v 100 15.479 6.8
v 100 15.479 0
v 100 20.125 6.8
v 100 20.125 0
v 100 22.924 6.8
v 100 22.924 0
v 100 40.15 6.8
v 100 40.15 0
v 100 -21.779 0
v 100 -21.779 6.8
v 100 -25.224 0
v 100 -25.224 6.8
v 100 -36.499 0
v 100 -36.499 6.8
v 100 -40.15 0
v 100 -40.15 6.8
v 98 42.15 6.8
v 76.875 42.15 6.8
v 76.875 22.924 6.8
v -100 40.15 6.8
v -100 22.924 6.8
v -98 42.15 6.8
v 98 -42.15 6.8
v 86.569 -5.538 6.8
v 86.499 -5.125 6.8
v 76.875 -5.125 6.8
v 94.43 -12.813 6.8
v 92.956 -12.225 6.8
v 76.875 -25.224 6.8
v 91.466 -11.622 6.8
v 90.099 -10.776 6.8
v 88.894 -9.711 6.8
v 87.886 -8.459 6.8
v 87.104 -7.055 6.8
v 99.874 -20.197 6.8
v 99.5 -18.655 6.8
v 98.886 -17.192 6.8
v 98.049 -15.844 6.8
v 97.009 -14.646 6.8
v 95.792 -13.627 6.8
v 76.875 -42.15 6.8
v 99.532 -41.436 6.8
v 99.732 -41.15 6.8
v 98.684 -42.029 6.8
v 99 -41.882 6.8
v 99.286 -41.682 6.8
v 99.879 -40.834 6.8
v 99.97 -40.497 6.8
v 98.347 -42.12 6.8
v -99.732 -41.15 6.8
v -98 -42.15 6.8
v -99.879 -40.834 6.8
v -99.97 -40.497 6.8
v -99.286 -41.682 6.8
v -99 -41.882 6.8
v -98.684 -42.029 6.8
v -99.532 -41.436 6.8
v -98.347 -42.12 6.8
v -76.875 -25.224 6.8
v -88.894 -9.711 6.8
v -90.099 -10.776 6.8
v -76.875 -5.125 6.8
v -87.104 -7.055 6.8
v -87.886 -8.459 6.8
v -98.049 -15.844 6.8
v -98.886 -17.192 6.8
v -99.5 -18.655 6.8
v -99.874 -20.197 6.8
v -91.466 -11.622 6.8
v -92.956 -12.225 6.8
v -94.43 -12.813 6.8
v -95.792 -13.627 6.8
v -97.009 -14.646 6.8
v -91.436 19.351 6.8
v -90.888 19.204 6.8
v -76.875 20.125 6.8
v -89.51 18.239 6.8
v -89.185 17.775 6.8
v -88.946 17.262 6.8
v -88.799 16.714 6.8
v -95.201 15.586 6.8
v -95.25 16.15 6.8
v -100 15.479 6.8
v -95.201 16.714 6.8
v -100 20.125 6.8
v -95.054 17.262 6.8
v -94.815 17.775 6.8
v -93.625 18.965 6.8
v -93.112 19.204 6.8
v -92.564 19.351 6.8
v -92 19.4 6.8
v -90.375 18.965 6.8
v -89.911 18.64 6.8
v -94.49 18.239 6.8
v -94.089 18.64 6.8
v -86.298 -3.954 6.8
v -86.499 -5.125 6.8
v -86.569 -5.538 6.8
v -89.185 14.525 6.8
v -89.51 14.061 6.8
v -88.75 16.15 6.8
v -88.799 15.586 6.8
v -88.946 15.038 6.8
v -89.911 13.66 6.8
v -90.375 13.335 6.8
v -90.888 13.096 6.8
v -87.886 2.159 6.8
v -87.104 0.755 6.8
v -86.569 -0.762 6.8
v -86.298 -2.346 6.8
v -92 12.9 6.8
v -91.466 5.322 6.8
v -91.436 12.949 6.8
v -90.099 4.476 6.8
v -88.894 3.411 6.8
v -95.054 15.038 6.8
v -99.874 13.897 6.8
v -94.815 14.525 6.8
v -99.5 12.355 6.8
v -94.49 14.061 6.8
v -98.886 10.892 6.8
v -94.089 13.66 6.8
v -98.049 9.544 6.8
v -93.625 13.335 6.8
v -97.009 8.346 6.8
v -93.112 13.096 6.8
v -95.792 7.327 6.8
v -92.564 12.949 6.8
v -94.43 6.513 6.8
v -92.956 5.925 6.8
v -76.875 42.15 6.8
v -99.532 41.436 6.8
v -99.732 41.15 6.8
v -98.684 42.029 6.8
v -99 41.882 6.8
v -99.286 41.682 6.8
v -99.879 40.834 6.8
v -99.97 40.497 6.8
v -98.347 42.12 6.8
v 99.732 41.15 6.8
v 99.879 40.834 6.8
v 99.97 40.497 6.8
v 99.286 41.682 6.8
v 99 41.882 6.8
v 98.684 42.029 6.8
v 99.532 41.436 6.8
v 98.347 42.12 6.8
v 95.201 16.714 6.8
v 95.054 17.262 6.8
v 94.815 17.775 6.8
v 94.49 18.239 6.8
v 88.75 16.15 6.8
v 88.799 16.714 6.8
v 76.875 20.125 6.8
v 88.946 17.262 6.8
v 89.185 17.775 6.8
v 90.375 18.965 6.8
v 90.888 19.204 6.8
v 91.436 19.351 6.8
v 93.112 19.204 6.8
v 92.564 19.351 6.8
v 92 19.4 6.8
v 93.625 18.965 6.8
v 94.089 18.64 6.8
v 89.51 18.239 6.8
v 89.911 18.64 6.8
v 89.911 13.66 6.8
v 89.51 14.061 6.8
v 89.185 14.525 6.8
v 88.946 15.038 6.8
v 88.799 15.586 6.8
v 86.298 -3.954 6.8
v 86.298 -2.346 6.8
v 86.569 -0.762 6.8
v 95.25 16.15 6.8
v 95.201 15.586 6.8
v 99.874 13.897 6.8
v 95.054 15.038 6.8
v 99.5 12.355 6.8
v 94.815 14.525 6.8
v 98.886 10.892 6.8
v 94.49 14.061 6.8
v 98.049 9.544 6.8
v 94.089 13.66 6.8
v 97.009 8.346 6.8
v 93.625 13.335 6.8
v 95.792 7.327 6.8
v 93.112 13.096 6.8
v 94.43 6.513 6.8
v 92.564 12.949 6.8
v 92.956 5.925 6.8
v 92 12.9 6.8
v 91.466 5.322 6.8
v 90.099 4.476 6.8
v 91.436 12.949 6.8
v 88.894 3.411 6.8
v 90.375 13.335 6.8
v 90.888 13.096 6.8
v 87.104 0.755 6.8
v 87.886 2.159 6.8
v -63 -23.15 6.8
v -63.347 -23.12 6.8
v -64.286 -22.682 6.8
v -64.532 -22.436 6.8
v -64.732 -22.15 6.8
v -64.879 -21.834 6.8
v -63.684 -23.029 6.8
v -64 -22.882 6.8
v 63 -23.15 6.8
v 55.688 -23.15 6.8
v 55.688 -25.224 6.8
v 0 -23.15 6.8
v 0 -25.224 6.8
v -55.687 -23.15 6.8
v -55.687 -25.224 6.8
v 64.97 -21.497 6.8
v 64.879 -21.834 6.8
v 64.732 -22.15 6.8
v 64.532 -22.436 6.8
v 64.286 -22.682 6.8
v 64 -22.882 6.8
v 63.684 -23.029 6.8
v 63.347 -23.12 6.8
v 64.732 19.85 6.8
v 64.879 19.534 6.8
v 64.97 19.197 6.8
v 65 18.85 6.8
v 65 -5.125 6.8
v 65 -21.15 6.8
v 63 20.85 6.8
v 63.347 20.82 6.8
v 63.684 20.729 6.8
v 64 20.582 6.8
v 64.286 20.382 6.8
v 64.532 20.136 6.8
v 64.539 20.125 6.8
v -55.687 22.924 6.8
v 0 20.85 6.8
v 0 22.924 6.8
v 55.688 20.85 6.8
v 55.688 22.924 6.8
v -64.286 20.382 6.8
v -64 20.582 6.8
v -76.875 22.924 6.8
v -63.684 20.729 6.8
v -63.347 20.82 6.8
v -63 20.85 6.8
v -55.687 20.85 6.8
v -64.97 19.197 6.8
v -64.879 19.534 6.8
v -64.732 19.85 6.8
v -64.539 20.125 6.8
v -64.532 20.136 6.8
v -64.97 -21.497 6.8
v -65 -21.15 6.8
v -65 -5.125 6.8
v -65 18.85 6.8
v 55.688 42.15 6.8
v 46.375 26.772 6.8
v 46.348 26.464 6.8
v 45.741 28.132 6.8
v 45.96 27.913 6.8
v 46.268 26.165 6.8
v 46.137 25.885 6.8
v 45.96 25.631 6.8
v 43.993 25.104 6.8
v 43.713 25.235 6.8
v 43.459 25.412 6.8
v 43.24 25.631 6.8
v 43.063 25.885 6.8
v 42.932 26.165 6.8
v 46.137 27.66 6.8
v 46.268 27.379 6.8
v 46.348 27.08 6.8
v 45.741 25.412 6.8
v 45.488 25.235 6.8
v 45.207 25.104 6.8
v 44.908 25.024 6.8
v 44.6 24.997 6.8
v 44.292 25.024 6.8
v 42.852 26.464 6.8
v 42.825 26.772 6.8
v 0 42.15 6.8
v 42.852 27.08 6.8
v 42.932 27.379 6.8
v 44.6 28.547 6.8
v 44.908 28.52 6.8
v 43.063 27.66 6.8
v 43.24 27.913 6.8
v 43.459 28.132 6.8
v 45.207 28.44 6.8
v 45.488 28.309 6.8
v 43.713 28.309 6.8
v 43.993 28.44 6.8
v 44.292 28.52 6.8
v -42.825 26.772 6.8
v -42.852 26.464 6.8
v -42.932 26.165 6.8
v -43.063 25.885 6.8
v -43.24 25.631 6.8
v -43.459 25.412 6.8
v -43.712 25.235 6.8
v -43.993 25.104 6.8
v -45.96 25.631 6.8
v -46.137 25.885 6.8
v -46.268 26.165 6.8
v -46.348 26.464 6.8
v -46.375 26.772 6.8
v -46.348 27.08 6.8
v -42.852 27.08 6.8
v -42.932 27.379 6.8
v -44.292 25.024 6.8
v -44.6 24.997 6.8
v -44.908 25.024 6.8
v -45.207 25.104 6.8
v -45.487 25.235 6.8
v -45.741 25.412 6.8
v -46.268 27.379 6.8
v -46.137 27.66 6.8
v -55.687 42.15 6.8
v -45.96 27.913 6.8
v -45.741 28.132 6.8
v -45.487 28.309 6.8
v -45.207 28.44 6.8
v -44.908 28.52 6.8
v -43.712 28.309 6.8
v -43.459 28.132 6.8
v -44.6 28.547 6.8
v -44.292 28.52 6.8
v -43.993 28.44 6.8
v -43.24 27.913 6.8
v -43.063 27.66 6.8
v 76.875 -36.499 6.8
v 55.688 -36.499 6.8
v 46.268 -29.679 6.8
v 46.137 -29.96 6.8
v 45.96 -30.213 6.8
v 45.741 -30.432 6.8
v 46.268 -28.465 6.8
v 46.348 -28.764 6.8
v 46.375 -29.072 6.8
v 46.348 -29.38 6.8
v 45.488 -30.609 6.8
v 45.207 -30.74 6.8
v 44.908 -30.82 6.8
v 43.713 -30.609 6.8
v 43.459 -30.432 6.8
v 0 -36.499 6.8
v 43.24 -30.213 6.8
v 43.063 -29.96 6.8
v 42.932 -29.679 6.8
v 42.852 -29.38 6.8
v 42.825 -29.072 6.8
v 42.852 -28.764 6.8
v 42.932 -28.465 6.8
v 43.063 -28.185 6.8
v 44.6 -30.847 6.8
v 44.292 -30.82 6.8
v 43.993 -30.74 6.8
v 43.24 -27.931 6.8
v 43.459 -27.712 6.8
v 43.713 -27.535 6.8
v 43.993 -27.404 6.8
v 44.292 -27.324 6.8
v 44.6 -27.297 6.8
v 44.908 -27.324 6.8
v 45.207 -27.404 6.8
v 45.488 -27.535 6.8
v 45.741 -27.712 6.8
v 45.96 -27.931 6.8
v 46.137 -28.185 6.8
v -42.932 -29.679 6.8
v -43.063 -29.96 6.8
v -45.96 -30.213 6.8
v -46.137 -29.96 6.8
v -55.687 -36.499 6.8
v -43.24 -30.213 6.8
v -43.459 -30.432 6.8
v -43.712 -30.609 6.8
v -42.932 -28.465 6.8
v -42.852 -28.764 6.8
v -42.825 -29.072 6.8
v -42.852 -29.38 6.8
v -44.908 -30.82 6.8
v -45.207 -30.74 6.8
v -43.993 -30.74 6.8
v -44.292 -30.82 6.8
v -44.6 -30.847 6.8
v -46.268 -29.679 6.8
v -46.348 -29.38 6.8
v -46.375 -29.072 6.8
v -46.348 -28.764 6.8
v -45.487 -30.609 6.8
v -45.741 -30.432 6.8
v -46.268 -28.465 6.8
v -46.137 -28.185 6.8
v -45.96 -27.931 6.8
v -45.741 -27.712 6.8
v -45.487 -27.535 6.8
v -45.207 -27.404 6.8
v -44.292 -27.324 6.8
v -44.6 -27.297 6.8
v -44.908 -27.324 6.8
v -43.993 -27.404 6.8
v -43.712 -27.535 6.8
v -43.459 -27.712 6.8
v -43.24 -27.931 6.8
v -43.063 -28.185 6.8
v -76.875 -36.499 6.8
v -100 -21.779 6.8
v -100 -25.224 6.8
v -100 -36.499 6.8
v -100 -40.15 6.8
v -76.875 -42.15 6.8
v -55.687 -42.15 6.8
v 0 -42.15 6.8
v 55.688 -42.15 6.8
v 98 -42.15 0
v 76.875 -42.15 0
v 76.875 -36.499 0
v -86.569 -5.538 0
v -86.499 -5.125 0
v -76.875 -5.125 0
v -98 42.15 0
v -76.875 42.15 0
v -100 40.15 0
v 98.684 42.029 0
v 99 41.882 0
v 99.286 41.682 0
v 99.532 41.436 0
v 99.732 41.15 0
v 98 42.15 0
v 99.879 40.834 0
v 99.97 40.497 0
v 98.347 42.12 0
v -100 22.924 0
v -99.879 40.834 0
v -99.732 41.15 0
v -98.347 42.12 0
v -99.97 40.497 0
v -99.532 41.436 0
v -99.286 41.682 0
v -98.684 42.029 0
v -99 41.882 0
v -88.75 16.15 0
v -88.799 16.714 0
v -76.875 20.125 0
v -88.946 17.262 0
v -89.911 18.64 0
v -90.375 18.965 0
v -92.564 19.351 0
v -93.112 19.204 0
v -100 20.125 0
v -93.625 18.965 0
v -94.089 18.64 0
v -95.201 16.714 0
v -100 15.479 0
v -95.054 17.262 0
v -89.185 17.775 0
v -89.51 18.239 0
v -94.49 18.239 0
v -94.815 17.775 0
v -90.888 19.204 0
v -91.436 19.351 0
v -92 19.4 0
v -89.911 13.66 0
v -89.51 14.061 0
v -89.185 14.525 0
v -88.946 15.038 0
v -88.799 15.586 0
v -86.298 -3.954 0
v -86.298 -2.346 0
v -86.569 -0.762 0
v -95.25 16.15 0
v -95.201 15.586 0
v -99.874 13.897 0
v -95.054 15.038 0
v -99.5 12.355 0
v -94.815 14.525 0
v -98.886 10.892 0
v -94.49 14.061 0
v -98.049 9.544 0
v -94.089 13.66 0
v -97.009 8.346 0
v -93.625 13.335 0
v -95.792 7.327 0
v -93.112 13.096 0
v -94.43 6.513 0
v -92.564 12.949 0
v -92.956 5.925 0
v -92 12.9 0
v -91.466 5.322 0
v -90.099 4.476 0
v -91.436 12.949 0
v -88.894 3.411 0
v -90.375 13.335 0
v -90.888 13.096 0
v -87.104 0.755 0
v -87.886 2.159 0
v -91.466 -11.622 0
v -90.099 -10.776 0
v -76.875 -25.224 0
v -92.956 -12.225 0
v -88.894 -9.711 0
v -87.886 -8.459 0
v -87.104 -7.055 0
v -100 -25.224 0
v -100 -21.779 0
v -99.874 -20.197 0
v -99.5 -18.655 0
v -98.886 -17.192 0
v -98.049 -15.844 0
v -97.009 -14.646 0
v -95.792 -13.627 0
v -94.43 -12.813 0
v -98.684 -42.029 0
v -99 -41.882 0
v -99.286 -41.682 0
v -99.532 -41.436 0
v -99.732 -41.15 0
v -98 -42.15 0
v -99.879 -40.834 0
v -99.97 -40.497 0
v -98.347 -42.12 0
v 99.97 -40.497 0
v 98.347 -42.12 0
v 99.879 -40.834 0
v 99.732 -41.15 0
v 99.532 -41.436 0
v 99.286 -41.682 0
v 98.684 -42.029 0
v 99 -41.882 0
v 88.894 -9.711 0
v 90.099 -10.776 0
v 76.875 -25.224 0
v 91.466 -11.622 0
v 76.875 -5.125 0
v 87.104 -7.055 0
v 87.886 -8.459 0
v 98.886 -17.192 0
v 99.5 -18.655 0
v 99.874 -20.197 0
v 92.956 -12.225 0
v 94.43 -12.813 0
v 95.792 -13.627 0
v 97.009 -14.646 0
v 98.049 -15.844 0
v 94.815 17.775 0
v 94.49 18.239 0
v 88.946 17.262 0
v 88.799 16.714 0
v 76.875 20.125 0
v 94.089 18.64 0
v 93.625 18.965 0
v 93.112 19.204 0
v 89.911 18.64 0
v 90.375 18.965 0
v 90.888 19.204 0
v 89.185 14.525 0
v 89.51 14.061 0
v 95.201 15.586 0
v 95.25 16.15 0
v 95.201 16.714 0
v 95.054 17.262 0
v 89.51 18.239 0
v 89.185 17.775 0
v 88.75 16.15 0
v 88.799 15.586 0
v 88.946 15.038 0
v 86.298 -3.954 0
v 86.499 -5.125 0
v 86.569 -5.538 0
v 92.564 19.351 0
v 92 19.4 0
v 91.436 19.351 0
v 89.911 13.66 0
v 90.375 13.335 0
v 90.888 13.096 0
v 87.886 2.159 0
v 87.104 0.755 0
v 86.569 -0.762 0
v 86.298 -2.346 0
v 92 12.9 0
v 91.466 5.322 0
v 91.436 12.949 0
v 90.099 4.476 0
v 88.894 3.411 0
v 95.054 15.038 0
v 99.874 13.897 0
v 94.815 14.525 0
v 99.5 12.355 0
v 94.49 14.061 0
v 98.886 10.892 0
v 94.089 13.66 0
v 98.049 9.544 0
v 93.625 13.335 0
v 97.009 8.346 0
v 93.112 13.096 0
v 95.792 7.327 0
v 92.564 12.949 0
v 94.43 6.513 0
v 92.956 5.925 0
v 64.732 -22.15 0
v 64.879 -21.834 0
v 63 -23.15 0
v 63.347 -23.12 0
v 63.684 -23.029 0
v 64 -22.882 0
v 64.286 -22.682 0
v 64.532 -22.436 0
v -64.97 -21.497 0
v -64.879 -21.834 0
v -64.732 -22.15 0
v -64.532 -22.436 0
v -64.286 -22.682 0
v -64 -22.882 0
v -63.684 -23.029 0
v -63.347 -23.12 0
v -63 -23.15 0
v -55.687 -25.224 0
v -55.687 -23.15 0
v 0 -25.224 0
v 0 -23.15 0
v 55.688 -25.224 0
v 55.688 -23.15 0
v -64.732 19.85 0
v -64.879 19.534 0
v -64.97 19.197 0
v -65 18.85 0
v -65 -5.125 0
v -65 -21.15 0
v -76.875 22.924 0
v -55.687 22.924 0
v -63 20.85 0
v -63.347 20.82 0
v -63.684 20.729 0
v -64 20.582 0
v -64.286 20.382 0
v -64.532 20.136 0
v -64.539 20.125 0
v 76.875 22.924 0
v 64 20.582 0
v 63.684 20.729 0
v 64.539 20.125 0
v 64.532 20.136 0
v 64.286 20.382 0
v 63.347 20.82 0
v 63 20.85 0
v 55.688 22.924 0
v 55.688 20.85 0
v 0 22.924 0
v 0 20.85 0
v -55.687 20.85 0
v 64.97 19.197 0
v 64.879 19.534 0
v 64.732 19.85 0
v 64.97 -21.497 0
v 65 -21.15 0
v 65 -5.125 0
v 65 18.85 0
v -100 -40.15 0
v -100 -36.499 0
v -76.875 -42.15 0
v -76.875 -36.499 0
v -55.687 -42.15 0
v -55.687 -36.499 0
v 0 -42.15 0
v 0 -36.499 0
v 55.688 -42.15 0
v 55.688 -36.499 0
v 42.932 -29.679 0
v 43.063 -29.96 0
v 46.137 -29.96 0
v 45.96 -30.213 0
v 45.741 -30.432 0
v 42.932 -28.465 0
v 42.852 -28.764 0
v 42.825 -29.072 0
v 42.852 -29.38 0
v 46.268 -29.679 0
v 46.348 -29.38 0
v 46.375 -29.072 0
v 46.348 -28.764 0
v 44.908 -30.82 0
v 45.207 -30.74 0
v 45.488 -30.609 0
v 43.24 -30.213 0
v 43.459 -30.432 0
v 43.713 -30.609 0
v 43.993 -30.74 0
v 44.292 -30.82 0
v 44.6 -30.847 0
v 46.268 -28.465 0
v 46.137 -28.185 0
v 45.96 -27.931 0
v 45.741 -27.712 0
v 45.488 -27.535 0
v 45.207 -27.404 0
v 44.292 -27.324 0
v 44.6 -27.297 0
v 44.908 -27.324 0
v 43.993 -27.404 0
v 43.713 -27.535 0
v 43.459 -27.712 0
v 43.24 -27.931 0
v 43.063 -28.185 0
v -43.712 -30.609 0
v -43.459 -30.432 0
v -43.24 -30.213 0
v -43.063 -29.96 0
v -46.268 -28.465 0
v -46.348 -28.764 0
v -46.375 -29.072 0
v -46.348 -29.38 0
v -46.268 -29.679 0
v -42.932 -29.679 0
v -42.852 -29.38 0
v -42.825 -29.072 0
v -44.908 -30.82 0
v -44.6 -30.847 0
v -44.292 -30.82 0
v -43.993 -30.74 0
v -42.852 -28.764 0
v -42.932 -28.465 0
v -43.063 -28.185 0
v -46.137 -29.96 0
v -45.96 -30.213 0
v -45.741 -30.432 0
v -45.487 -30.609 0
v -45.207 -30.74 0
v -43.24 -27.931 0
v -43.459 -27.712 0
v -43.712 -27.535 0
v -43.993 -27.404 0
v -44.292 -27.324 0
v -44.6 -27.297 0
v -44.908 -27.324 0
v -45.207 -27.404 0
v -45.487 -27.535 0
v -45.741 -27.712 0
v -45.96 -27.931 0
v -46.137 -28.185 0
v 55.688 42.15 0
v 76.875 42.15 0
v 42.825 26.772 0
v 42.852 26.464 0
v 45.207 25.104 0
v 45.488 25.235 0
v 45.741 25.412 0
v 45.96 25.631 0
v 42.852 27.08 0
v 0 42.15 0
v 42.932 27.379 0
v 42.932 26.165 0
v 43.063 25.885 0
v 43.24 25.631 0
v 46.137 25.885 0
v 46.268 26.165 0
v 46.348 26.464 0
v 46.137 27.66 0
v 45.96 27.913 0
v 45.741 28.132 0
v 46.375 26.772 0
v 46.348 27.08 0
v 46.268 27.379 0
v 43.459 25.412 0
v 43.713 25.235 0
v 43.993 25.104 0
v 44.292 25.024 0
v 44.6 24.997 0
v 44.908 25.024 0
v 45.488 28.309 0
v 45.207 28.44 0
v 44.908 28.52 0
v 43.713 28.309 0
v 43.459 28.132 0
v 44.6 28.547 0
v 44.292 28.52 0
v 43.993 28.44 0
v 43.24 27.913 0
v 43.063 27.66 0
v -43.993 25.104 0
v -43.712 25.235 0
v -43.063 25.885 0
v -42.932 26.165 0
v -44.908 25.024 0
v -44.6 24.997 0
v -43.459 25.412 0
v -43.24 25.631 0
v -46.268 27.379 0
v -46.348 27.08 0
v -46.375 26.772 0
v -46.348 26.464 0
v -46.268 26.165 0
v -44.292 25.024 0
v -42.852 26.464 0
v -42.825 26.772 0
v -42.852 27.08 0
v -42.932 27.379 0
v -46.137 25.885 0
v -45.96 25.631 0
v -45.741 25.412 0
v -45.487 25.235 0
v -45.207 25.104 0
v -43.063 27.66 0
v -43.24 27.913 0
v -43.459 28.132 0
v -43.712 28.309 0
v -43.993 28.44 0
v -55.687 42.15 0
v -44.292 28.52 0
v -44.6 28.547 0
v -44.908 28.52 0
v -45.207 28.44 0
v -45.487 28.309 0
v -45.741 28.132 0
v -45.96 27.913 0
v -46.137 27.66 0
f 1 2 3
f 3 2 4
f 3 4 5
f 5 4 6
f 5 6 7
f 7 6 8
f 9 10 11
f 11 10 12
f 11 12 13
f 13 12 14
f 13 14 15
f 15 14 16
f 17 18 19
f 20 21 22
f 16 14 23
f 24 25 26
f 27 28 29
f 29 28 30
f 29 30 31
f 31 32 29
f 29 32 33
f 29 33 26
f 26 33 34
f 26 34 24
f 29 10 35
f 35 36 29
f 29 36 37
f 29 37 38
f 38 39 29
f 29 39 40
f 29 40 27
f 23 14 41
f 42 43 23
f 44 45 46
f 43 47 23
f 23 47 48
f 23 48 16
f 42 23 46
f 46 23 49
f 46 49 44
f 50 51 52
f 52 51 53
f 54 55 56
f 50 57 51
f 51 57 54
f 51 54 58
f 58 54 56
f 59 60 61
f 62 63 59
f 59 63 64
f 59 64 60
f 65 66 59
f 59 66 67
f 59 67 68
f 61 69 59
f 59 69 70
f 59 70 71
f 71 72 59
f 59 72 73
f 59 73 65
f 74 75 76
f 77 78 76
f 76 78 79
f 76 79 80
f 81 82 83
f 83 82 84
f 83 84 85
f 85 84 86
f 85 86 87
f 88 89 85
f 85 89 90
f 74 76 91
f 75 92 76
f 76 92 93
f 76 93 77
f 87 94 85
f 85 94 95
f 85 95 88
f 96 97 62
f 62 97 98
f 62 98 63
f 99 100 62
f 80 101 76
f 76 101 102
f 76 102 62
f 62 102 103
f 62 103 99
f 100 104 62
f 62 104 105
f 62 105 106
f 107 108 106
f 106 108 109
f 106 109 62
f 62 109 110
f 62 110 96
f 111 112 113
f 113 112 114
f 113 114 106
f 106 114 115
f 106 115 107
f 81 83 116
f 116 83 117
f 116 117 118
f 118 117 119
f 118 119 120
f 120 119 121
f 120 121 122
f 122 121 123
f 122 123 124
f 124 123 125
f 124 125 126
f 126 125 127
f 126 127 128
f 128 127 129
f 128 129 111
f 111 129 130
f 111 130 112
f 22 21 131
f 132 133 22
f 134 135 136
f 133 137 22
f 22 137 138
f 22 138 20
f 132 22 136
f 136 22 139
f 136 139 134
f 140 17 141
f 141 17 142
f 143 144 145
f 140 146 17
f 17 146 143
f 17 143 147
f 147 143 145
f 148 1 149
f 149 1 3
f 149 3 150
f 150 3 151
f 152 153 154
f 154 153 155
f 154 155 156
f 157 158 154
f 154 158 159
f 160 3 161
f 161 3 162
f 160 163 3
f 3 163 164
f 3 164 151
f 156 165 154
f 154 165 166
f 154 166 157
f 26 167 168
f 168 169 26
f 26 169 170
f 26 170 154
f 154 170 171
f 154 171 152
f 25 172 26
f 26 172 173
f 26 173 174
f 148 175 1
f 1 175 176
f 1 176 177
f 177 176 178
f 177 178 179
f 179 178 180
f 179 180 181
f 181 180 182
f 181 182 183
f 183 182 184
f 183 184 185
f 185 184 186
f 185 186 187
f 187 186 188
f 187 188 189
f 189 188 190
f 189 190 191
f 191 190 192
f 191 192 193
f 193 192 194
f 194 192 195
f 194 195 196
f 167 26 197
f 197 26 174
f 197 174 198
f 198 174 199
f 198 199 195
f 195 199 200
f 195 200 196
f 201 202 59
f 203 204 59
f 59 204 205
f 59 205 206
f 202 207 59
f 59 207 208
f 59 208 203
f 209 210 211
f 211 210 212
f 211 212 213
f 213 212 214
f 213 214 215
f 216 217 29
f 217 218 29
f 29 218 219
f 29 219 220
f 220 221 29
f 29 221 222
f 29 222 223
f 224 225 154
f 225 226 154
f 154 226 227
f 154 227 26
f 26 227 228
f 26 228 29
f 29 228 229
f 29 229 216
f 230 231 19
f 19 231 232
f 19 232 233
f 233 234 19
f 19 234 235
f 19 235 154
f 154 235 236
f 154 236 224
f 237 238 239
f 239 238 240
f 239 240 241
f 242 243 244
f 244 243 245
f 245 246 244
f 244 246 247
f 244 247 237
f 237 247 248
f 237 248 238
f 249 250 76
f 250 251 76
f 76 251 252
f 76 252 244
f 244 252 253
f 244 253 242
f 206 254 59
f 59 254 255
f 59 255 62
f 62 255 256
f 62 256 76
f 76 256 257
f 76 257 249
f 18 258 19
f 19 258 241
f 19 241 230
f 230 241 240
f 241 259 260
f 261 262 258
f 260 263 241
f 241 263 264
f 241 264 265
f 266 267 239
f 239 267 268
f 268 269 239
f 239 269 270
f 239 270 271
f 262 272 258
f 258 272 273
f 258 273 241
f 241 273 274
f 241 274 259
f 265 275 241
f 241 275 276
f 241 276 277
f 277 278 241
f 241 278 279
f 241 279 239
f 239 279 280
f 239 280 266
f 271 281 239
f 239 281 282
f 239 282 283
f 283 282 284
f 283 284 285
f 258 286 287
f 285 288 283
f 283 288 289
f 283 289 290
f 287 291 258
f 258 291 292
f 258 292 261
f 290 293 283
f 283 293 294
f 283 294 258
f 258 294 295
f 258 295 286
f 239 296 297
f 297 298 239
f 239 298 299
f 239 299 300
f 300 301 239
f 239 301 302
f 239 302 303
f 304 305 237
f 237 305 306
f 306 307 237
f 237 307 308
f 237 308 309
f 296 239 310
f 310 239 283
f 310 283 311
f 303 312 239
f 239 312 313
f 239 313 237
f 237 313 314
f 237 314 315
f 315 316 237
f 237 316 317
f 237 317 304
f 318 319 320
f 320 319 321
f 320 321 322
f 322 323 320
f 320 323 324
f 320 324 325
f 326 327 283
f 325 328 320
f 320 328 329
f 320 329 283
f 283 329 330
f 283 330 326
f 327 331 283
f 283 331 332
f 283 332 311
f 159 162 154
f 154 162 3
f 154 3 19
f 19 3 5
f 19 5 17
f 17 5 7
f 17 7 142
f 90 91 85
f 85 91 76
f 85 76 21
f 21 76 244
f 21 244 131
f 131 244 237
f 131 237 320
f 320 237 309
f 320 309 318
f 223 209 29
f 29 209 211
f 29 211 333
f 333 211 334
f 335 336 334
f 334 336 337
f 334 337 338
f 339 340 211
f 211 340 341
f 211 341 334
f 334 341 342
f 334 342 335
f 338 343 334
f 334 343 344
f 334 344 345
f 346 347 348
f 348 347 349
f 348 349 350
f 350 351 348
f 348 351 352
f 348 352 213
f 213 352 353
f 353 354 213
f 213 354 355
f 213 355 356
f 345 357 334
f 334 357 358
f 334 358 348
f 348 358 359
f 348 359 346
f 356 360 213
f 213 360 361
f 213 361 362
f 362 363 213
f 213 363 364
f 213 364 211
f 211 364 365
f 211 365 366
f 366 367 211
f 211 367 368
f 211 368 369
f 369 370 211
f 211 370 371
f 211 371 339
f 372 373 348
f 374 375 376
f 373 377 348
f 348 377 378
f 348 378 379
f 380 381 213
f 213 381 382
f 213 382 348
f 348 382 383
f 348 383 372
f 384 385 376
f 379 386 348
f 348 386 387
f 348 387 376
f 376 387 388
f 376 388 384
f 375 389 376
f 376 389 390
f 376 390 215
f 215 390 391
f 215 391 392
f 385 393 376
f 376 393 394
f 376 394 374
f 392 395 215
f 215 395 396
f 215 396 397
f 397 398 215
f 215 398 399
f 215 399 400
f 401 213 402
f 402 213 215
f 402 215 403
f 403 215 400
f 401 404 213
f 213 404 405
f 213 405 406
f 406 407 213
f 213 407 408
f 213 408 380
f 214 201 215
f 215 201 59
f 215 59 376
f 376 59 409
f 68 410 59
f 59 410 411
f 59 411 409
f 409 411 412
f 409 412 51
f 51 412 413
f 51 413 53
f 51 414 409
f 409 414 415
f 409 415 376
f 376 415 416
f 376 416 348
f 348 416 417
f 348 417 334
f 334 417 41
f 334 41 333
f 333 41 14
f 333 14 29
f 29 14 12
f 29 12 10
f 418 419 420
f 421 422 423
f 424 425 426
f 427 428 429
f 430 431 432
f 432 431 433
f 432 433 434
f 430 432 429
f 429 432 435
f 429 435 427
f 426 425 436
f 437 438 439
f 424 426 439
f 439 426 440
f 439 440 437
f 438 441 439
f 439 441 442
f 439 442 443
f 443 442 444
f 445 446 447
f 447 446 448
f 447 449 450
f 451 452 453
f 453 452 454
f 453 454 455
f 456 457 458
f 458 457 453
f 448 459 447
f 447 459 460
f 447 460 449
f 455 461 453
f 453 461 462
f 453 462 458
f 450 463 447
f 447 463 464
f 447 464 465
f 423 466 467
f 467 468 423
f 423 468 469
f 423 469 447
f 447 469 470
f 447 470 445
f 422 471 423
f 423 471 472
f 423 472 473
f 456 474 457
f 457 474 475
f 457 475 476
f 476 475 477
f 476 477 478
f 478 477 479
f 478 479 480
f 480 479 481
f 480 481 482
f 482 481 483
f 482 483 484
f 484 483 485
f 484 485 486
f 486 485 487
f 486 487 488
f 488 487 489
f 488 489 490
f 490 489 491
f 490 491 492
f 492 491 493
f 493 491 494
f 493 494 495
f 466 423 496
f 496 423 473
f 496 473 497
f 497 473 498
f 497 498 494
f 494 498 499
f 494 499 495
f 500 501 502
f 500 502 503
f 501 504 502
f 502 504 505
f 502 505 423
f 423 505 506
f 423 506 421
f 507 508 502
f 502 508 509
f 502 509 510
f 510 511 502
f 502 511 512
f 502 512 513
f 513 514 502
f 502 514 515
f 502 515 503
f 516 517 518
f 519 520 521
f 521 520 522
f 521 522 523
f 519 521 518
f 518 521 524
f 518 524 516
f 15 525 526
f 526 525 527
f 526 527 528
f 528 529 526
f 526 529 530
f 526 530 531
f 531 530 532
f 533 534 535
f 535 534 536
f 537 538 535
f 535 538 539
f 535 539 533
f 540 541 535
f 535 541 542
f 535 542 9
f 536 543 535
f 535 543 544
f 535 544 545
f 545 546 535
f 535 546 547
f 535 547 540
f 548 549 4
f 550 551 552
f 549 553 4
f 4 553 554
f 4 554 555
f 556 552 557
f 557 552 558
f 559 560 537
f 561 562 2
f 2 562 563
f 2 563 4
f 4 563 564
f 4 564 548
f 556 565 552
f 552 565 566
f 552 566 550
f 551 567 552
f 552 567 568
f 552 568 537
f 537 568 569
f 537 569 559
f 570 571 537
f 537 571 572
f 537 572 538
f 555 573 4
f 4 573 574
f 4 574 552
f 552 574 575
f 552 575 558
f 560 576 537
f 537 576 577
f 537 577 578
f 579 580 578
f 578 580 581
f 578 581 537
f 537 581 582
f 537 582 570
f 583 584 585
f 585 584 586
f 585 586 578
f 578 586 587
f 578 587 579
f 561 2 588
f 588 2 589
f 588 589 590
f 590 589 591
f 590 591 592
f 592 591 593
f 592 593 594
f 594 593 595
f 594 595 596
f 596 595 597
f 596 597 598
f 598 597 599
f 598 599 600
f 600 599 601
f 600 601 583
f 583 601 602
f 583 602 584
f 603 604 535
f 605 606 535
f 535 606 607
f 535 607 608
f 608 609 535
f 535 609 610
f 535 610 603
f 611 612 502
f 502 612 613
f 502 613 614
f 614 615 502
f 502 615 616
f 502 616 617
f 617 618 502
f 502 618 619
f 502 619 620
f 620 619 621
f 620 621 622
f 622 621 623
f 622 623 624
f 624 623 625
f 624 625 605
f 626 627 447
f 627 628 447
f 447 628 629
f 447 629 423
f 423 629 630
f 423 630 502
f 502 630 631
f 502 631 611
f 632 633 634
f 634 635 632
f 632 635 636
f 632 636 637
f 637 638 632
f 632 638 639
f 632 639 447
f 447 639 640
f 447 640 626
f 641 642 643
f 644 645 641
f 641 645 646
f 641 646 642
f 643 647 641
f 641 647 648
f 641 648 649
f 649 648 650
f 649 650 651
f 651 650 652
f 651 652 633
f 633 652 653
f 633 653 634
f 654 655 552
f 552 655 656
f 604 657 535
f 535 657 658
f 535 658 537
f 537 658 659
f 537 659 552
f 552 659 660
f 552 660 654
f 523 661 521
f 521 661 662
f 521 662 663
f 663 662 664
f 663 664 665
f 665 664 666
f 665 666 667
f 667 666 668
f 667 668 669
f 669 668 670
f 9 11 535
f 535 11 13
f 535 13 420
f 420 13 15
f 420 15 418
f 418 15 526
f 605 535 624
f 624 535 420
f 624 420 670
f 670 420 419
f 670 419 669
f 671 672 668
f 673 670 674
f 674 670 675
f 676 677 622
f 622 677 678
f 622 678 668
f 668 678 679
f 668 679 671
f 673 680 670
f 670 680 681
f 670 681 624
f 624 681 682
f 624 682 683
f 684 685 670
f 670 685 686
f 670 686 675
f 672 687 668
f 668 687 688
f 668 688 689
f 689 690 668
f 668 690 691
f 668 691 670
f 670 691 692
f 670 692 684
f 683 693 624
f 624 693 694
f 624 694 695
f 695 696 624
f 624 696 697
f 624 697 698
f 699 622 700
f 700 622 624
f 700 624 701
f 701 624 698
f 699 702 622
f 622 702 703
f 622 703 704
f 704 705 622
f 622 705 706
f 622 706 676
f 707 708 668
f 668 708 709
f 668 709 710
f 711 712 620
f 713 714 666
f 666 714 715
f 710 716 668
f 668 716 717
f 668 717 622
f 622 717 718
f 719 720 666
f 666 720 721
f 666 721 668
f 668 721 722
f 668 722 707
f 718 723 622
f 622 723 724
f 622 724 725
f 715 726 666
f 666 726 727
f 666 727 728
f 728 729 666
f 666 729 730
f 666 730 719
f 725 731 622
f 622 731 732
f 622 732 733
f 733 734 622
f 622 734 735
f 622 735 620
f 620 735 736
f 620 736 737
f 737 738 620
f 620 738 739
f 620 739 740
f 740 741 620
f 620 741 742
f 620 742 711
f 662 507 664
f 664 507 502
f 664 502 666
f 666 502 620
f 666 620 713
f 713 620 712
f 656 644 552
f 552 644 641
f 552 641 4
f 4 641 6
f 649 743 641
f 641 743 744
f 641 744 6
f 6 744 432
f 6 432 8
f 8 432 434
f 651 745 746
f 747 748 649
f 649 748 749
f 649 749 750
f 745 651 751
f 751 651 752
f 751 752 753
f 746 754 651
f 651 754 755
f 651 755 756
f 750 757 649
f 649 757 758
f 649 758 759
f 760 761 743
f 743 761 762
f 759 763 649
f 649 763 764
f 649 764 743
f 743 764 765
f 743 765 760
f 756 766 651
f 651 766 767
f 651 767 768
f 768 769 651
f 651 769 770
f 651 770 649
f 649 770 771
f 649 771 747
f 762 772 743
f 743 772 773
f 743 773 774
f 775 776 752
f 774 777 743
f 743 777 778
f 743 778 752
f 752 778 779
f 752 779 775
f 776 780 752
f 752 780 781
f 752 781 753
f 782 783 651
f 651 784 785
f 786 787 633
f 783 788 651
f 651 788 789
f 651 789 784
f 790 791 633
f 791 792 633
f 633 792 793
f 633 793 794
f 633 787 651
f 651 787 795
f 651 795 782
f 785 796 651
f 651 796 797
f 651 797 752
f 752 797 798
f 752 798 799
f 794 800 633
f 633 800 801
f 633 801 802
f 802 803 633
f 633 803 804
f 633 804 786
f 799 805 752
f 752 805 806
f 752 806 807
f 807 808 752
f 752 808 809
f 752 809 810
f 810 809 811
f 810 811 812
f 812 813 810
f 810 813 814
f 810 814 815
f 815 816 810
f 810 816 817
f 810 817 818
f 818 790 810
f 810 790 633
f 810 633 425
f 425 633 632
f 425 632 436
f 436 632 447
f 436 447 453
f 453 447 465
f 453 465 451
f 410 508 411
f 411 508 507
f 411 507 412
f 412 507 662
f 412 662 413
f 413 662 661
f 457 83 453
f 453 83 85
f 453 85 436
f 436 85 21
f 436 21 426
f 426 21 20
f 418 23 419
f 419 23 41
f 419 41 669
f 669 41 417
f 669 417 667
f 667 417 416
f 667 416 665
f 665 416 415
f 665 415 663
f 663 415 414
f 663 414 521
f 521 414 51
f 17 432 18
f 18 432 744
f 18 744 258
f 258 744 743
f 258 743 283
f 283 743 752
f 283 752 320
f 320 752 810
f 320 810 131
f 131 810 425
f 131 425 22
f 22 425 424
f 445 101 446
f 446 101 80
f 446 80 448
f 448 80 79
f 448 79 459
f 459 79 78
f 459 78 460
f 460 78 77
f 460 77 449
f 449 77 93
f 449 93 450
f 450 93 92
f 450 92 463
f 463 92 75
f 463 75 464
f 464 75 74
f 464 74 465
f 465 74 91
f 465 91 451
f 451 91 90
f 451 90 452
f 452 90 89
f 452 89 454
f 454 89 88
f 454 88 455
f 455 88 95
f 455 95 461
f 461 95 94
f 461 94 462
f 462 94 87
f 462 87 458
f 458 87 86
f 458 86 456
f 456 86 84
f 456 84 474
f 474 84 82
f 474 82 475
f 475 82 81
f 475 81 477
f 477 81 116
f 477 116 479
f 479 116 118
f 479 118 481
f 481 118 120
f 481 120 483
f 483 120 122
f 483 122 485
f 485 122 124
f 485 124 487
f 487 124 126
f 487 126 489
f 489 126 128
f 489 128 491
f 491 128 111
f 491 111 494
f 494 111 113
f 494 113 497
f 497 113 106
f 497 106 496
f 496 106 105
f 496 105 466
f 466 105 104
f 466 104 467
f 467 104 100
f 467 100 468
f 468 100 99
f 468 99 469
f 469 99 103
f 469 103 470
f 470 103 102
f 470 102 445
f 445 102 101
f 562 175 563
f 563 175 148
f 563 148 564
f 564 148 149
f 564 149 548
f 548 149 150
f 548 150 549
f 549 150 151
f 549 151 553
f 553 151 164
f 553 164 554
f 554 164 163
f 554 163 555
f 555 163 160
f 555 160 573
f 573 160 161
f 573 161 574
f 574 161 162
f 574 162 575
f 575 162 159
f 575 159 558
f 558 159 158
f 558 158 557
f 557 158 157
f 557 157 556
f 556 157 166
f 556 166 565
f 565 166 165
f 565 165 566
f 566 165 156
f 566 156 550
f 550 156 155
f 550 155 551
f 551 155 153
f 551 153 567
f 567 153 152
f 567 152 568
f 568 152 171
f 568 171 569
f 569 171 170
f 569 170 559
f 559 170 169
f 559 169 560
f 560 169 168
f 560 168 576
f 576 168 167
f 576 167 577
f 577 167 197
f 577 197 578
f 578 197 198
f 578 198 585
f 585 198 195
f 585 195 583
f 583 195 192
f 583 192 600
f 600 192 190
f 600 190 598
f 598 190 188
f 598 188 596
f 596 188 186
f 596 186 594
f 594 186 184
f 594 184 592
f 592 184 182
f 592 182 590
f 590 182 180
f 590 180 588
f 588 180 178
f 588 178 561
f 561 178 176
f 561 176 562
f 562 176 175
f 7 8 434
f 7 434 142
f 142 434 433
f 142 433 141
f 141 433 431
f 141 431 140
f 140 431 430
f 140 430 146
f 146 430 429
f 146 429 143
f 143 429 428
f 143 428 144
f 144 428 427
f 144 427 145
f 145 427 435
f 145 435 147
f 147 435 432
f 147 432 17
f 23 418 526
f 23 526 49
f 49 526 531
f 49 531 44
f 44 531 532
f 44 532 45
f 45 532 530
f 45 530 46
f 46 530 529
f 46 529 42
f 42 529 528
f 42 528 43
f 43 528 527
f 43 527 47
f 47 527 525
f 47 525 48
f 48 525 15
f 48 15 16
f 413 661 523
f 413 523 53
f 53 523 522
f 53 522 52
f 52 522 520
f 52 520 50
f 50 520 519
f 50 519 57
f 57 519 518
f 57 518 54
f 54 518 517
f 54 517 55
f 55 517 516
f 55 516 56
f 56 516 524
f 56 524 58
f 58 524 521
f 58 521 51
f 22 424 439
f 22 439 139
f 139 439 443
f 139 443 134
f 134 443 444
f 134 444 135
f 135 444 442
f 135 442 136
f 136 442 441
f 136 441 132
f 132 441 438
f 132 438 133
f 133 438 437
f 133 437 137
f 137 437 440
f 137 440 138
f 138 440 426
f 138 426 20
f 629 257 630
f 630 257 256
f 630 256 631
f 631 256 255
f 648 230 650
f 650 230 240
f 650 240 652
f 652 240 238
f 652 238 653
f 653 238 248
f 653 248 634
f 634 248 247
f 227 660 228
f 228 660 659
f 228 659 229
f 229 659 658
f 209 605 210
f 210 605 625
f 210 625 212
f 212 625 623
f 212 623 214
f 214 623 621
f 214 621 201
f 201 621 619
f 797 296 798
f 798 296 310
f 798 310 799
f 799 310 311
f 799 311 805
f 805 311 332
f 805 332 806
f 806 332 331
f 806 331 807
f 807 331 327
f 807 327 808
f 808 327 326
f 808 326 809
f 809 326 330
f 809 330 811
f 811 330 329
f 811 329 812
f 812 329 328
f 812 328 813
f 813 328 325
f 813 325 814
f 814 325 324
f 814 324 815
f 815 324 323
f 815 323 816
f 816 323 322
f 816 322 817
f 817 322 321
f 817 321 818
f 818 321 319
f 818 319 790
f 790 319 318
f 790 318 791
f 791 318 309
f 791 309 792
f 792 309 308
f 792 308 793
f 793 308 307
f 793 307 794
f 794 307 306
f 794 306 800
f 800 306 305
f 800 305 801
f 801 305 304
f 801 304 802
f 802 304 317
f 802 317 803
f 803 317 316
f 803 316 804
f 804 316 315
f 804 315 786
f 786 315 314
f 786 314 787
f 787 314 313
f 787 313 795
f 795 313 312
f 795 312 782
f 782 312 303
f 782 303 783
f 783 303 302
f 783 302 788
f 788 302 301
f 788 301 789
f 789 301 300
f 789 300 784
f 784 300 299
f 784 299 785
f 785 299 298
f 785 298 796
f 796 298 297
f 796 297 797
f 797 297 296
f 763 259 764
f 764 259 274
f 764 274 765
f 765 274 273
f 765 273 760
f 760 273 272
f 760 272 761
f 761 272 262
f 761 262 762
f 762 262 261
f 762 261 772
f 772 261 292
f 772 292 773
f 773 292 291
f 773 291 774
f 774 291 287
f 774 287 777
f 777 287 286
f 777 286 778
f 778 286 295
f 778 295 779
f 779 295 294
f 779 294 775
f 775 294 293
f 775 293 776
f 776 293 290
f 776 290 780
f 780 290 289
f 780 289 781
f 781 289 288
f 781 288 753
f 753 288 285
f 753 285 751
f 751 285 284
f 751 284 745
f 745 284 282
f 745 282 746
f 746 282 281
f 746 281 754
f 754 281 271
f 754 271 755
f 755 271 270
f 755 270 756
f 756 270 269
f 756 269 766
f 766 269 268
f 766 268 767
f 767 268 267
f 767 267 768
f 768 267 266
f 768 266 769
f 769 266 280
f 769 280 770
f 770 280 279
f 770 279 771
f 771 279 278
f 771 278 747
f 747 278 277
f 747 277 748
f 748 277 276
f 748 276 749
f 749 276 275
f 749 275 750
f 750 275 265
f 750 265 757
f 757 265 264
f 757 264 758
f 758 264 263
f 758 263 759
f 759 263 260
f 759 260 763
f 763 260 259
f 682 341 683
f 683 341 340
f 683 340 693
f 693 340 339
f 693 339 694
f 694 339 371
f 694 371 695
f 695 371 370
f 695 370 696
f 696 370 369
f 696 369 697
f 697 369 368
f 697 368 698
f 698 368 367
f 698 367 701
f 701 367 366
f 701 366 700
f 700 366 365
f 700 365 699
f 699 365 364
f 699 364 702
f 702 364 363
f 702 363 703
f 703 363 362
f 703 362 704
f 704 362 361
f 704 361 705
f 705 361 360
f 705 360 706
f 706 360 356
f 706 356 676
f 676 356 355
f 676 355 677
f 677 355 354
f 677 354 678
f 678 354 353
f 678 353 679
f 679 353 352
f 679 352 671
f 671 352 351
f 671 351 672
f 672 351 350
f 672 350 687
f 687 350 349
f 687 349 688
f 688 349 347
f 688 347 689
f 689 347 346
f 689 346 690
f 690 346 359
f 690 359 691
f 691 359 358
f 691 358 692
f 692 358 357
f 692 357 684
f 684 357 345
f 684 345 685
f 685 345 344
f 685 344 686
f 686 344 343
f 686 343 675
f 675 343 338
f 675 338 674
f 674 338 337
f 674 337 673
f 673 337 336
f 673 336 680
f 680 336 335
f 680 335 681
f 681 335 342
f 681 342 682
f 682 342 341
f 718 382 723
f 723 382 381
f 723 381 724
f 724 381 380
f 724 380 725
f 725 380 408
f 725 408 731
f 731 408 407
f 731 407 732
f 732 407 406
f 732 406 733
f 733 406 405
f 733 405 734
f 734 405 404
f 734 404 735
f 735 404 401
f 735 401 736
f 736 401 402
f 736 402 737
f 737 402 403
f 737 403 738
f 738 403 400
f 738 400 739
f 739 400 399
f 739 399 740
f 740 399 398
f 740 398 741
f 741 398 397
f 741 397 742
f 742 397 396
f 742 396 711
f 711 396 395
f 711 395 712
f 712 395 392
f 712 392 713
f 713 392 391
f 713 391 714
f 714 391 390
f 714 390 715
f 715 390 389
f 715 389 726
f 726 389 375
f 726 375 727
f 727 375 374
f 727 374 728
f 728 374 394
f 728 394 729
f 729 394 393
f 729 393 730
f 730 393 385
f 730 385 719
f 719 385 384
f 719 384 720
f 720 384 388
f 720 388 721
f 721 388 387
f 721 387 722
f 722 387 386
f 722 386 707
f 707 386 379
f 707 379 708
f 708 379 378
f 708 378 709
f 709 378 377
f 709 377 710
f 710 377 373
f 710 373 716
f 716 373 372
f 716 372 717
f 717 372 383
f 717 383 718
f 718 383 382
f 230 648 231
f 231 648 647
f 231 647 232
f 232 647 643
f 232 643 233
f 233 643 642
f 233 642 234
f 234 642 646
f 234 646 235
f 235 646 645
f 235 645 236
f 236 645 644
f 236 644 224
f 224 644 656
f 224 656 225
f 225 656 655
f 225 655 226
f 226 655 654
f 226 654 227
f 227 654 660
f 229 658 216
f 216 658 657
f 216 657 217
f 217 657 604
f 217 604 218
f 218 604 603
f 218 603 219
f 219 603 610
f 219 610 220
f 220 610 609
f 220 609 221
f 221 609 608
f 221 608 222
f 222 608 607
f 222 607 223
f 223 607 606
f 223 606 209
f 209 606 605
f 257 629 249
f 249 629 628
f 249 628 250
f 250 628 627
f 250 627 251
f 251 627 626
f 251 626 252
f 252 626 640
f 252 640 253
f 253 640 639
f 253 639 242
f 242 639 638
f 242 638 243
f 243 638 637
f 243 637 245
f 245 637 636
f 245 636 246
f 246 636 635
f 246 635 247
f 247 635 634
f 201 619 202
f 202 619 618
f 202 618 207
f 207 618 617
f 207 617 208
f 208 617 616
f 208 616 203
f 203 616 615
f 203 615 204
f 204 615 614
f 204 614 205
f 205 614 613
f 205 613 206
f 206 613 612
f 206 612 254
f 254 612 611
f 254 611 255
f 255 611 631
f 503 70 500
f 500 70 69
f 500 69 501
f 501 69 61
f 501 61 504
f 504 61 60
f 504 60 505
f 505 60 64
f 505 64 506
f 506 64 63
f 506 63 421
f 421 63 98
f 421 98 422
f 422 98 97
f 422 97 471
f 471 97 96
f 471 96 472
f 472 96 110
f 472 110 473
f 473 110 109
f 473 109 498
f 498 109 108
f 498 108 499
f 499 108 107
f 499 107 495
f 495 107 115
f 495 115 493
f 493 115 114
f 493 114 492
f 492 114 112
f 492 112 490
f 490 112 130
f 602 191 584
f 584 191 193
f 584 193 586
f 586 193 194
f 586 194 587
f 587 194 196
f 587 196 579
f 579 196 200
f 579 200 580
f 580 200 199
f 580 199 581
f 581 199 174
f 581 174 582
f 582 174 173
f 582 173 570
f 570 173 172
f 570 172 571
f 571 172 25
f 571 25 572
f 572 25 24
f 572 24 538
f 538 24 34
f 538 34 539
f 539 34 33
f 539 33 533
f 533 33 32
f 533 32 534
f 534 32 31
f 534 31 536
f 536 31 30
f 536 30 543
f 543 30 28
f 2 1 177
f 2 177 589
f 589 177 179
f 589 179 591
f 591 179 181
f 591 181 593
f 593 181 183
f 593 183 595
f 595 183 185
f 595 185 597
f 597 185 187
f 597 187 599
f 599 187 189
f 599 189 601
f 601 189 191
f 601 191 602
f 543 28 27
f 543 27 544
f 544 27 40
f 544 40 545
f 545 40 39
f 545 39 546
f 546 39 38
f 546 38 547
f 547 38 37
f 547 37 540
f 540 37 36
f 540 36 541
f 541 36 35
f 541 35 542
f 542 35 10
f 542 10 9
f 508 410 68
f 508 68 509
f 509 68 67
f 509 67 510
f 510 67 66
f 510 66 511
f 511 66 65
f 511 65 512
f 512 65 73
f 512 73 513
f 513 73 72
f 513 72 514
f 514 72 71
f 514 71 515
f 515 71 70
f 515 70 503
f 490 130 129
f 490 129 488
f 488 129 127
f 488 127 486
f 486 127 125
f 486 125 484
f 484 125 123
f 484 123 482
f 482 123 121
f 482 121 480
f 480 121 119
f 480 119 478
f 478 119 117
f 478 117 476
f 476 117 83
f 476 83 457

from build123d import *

# Parameters (mm, degrees)
SKETCH1_W           = 200
SKETCH1_H           = 84.3
BOSS_EXTRUDE1_DEPTH = 6.8
SKETCH2_R           = 3.25
CUT_EXTRUDE1_DEPTH  = 6.8
FILLET1_R           = 2
SKETCH3_R           = 1.775
SKETCH3_W           = 130
SKETCH3_H           = 44
CUT_EXTRUDE2_DEPTH  = 109.732987175
FILLET2_R           = 2
CUT_EXTRUDE3_DEPTH  = 10
FILLET3_R           = 10


with BuildPart() as part:
    # Sketch1 → Boss-Extrude1 (new body)
    with BuildSketch(Plane.XY):
        Rectangle(SKETCH1_W, SKETCH1_H)
    extrude(amount=BOSS_EXTRUDE1_DEPTH)

    # Sketch2 → Cut-Extrude1 (cut)
    with BuildSketch(Plane.XY.offset(6.8)):
        with Locations((-92, 16.15)):
            Circle(SKETCH2_R)
        with Locations((92, 16.15)):
            Circle(SKETCH2_R)
    extrude(amount=-CUT_EXTRUDE1_DEPTH, mode=Mode.SUBTRACT)

    # Fillet1
    fillet1_edges = [part.edges().sort_by_distance(p)[0] for p in [
        (-100, 42.15, 3.4),
        (100, 42.15, 3.4),
        (100, -42.15, 3.4),
        (-100, -42.15, 3.4),
    ]]
    fillet(fillet1_edges, radius=FILLET1_R)

    # Sketch3 → Cut-Extrude2 (cut, through all)
    with BuildSketch(Plane.XY.offset(6.8)):
        with Locations((-44.6, 26.7722)):
            Circle(SKETCH3_R)
        with Locations((44.6, 26.7722)):
            Circle(SKETCH3_R)
        with Locations((44.6, -29.0722)):
            Circle(SKETCH3_R)
        with Locations((-44.6, -29.0722)):
            Circle(SKETCH3_R)
        with Locations((0, -1.15)):
            Rectangle(SKETCH3_W, SKETCH3_H)
    extrude(amount=-CUT_EXTRUDE2_DEPTH, mode=Mode.SUBTRACT)

    # Fillet2
    fillet2_edges = [part.edges().sort_by_distance(p)[0] for p in [
        (-65, -23.15, 3.4),
        (-65, 20.85, 3.4),
        (65, 20.85, 3.4),
        (65, -23.15, 3.4),
    ]]
    fillet(fillet2_edges, radius=FILLET2_R)

    # Sketch4 → Cut-Extrude3 (cut)
    with BuildSketch(Plane.XY.offset(6.8)):
        with BuildLine():
            Line((-95.764164993, 6.349975114), (-108.891829776, 6.349975114))
            Line((-108.891829776, 6.349975114), (-108.891829776, -12.650024886))
            Line((-108.891829776, -12.650024886), (-95.764164993, -12.650024886))
            ThreePointArc((-95.764164993, -12.650024886), (-86.264164993, -3.150024886), (-95.764164993, 6.349975114))
        make_face()
    cut_extrude3 = extrude(amount=-CUT_EXTRUDE3_DEPTH, mode=Mode.SUBTRACT)

    # Mirror3: Cut-Extrude3 across plane
    add(cut_extrude3.mirror(Plane(origin=(0, 0, 0), x_dir=(0, 0, 1), z_dir=(1, 0, 0))), mode=Mode.SUBTRACT)

    # Fillet3
    fillet3_edges = [part.edges().sort_by_distance(p)[0] for p in [
        (-100, -12.650024886, 3.4),
        (-100, 6.349975114, 3.4),
        (100, 6.349975114, 3.4),
        (100, -12.650024886, 3.4),
    ]]
    fillet(fillet3_edges, radius=FILLET3_R)


solid = part.part
